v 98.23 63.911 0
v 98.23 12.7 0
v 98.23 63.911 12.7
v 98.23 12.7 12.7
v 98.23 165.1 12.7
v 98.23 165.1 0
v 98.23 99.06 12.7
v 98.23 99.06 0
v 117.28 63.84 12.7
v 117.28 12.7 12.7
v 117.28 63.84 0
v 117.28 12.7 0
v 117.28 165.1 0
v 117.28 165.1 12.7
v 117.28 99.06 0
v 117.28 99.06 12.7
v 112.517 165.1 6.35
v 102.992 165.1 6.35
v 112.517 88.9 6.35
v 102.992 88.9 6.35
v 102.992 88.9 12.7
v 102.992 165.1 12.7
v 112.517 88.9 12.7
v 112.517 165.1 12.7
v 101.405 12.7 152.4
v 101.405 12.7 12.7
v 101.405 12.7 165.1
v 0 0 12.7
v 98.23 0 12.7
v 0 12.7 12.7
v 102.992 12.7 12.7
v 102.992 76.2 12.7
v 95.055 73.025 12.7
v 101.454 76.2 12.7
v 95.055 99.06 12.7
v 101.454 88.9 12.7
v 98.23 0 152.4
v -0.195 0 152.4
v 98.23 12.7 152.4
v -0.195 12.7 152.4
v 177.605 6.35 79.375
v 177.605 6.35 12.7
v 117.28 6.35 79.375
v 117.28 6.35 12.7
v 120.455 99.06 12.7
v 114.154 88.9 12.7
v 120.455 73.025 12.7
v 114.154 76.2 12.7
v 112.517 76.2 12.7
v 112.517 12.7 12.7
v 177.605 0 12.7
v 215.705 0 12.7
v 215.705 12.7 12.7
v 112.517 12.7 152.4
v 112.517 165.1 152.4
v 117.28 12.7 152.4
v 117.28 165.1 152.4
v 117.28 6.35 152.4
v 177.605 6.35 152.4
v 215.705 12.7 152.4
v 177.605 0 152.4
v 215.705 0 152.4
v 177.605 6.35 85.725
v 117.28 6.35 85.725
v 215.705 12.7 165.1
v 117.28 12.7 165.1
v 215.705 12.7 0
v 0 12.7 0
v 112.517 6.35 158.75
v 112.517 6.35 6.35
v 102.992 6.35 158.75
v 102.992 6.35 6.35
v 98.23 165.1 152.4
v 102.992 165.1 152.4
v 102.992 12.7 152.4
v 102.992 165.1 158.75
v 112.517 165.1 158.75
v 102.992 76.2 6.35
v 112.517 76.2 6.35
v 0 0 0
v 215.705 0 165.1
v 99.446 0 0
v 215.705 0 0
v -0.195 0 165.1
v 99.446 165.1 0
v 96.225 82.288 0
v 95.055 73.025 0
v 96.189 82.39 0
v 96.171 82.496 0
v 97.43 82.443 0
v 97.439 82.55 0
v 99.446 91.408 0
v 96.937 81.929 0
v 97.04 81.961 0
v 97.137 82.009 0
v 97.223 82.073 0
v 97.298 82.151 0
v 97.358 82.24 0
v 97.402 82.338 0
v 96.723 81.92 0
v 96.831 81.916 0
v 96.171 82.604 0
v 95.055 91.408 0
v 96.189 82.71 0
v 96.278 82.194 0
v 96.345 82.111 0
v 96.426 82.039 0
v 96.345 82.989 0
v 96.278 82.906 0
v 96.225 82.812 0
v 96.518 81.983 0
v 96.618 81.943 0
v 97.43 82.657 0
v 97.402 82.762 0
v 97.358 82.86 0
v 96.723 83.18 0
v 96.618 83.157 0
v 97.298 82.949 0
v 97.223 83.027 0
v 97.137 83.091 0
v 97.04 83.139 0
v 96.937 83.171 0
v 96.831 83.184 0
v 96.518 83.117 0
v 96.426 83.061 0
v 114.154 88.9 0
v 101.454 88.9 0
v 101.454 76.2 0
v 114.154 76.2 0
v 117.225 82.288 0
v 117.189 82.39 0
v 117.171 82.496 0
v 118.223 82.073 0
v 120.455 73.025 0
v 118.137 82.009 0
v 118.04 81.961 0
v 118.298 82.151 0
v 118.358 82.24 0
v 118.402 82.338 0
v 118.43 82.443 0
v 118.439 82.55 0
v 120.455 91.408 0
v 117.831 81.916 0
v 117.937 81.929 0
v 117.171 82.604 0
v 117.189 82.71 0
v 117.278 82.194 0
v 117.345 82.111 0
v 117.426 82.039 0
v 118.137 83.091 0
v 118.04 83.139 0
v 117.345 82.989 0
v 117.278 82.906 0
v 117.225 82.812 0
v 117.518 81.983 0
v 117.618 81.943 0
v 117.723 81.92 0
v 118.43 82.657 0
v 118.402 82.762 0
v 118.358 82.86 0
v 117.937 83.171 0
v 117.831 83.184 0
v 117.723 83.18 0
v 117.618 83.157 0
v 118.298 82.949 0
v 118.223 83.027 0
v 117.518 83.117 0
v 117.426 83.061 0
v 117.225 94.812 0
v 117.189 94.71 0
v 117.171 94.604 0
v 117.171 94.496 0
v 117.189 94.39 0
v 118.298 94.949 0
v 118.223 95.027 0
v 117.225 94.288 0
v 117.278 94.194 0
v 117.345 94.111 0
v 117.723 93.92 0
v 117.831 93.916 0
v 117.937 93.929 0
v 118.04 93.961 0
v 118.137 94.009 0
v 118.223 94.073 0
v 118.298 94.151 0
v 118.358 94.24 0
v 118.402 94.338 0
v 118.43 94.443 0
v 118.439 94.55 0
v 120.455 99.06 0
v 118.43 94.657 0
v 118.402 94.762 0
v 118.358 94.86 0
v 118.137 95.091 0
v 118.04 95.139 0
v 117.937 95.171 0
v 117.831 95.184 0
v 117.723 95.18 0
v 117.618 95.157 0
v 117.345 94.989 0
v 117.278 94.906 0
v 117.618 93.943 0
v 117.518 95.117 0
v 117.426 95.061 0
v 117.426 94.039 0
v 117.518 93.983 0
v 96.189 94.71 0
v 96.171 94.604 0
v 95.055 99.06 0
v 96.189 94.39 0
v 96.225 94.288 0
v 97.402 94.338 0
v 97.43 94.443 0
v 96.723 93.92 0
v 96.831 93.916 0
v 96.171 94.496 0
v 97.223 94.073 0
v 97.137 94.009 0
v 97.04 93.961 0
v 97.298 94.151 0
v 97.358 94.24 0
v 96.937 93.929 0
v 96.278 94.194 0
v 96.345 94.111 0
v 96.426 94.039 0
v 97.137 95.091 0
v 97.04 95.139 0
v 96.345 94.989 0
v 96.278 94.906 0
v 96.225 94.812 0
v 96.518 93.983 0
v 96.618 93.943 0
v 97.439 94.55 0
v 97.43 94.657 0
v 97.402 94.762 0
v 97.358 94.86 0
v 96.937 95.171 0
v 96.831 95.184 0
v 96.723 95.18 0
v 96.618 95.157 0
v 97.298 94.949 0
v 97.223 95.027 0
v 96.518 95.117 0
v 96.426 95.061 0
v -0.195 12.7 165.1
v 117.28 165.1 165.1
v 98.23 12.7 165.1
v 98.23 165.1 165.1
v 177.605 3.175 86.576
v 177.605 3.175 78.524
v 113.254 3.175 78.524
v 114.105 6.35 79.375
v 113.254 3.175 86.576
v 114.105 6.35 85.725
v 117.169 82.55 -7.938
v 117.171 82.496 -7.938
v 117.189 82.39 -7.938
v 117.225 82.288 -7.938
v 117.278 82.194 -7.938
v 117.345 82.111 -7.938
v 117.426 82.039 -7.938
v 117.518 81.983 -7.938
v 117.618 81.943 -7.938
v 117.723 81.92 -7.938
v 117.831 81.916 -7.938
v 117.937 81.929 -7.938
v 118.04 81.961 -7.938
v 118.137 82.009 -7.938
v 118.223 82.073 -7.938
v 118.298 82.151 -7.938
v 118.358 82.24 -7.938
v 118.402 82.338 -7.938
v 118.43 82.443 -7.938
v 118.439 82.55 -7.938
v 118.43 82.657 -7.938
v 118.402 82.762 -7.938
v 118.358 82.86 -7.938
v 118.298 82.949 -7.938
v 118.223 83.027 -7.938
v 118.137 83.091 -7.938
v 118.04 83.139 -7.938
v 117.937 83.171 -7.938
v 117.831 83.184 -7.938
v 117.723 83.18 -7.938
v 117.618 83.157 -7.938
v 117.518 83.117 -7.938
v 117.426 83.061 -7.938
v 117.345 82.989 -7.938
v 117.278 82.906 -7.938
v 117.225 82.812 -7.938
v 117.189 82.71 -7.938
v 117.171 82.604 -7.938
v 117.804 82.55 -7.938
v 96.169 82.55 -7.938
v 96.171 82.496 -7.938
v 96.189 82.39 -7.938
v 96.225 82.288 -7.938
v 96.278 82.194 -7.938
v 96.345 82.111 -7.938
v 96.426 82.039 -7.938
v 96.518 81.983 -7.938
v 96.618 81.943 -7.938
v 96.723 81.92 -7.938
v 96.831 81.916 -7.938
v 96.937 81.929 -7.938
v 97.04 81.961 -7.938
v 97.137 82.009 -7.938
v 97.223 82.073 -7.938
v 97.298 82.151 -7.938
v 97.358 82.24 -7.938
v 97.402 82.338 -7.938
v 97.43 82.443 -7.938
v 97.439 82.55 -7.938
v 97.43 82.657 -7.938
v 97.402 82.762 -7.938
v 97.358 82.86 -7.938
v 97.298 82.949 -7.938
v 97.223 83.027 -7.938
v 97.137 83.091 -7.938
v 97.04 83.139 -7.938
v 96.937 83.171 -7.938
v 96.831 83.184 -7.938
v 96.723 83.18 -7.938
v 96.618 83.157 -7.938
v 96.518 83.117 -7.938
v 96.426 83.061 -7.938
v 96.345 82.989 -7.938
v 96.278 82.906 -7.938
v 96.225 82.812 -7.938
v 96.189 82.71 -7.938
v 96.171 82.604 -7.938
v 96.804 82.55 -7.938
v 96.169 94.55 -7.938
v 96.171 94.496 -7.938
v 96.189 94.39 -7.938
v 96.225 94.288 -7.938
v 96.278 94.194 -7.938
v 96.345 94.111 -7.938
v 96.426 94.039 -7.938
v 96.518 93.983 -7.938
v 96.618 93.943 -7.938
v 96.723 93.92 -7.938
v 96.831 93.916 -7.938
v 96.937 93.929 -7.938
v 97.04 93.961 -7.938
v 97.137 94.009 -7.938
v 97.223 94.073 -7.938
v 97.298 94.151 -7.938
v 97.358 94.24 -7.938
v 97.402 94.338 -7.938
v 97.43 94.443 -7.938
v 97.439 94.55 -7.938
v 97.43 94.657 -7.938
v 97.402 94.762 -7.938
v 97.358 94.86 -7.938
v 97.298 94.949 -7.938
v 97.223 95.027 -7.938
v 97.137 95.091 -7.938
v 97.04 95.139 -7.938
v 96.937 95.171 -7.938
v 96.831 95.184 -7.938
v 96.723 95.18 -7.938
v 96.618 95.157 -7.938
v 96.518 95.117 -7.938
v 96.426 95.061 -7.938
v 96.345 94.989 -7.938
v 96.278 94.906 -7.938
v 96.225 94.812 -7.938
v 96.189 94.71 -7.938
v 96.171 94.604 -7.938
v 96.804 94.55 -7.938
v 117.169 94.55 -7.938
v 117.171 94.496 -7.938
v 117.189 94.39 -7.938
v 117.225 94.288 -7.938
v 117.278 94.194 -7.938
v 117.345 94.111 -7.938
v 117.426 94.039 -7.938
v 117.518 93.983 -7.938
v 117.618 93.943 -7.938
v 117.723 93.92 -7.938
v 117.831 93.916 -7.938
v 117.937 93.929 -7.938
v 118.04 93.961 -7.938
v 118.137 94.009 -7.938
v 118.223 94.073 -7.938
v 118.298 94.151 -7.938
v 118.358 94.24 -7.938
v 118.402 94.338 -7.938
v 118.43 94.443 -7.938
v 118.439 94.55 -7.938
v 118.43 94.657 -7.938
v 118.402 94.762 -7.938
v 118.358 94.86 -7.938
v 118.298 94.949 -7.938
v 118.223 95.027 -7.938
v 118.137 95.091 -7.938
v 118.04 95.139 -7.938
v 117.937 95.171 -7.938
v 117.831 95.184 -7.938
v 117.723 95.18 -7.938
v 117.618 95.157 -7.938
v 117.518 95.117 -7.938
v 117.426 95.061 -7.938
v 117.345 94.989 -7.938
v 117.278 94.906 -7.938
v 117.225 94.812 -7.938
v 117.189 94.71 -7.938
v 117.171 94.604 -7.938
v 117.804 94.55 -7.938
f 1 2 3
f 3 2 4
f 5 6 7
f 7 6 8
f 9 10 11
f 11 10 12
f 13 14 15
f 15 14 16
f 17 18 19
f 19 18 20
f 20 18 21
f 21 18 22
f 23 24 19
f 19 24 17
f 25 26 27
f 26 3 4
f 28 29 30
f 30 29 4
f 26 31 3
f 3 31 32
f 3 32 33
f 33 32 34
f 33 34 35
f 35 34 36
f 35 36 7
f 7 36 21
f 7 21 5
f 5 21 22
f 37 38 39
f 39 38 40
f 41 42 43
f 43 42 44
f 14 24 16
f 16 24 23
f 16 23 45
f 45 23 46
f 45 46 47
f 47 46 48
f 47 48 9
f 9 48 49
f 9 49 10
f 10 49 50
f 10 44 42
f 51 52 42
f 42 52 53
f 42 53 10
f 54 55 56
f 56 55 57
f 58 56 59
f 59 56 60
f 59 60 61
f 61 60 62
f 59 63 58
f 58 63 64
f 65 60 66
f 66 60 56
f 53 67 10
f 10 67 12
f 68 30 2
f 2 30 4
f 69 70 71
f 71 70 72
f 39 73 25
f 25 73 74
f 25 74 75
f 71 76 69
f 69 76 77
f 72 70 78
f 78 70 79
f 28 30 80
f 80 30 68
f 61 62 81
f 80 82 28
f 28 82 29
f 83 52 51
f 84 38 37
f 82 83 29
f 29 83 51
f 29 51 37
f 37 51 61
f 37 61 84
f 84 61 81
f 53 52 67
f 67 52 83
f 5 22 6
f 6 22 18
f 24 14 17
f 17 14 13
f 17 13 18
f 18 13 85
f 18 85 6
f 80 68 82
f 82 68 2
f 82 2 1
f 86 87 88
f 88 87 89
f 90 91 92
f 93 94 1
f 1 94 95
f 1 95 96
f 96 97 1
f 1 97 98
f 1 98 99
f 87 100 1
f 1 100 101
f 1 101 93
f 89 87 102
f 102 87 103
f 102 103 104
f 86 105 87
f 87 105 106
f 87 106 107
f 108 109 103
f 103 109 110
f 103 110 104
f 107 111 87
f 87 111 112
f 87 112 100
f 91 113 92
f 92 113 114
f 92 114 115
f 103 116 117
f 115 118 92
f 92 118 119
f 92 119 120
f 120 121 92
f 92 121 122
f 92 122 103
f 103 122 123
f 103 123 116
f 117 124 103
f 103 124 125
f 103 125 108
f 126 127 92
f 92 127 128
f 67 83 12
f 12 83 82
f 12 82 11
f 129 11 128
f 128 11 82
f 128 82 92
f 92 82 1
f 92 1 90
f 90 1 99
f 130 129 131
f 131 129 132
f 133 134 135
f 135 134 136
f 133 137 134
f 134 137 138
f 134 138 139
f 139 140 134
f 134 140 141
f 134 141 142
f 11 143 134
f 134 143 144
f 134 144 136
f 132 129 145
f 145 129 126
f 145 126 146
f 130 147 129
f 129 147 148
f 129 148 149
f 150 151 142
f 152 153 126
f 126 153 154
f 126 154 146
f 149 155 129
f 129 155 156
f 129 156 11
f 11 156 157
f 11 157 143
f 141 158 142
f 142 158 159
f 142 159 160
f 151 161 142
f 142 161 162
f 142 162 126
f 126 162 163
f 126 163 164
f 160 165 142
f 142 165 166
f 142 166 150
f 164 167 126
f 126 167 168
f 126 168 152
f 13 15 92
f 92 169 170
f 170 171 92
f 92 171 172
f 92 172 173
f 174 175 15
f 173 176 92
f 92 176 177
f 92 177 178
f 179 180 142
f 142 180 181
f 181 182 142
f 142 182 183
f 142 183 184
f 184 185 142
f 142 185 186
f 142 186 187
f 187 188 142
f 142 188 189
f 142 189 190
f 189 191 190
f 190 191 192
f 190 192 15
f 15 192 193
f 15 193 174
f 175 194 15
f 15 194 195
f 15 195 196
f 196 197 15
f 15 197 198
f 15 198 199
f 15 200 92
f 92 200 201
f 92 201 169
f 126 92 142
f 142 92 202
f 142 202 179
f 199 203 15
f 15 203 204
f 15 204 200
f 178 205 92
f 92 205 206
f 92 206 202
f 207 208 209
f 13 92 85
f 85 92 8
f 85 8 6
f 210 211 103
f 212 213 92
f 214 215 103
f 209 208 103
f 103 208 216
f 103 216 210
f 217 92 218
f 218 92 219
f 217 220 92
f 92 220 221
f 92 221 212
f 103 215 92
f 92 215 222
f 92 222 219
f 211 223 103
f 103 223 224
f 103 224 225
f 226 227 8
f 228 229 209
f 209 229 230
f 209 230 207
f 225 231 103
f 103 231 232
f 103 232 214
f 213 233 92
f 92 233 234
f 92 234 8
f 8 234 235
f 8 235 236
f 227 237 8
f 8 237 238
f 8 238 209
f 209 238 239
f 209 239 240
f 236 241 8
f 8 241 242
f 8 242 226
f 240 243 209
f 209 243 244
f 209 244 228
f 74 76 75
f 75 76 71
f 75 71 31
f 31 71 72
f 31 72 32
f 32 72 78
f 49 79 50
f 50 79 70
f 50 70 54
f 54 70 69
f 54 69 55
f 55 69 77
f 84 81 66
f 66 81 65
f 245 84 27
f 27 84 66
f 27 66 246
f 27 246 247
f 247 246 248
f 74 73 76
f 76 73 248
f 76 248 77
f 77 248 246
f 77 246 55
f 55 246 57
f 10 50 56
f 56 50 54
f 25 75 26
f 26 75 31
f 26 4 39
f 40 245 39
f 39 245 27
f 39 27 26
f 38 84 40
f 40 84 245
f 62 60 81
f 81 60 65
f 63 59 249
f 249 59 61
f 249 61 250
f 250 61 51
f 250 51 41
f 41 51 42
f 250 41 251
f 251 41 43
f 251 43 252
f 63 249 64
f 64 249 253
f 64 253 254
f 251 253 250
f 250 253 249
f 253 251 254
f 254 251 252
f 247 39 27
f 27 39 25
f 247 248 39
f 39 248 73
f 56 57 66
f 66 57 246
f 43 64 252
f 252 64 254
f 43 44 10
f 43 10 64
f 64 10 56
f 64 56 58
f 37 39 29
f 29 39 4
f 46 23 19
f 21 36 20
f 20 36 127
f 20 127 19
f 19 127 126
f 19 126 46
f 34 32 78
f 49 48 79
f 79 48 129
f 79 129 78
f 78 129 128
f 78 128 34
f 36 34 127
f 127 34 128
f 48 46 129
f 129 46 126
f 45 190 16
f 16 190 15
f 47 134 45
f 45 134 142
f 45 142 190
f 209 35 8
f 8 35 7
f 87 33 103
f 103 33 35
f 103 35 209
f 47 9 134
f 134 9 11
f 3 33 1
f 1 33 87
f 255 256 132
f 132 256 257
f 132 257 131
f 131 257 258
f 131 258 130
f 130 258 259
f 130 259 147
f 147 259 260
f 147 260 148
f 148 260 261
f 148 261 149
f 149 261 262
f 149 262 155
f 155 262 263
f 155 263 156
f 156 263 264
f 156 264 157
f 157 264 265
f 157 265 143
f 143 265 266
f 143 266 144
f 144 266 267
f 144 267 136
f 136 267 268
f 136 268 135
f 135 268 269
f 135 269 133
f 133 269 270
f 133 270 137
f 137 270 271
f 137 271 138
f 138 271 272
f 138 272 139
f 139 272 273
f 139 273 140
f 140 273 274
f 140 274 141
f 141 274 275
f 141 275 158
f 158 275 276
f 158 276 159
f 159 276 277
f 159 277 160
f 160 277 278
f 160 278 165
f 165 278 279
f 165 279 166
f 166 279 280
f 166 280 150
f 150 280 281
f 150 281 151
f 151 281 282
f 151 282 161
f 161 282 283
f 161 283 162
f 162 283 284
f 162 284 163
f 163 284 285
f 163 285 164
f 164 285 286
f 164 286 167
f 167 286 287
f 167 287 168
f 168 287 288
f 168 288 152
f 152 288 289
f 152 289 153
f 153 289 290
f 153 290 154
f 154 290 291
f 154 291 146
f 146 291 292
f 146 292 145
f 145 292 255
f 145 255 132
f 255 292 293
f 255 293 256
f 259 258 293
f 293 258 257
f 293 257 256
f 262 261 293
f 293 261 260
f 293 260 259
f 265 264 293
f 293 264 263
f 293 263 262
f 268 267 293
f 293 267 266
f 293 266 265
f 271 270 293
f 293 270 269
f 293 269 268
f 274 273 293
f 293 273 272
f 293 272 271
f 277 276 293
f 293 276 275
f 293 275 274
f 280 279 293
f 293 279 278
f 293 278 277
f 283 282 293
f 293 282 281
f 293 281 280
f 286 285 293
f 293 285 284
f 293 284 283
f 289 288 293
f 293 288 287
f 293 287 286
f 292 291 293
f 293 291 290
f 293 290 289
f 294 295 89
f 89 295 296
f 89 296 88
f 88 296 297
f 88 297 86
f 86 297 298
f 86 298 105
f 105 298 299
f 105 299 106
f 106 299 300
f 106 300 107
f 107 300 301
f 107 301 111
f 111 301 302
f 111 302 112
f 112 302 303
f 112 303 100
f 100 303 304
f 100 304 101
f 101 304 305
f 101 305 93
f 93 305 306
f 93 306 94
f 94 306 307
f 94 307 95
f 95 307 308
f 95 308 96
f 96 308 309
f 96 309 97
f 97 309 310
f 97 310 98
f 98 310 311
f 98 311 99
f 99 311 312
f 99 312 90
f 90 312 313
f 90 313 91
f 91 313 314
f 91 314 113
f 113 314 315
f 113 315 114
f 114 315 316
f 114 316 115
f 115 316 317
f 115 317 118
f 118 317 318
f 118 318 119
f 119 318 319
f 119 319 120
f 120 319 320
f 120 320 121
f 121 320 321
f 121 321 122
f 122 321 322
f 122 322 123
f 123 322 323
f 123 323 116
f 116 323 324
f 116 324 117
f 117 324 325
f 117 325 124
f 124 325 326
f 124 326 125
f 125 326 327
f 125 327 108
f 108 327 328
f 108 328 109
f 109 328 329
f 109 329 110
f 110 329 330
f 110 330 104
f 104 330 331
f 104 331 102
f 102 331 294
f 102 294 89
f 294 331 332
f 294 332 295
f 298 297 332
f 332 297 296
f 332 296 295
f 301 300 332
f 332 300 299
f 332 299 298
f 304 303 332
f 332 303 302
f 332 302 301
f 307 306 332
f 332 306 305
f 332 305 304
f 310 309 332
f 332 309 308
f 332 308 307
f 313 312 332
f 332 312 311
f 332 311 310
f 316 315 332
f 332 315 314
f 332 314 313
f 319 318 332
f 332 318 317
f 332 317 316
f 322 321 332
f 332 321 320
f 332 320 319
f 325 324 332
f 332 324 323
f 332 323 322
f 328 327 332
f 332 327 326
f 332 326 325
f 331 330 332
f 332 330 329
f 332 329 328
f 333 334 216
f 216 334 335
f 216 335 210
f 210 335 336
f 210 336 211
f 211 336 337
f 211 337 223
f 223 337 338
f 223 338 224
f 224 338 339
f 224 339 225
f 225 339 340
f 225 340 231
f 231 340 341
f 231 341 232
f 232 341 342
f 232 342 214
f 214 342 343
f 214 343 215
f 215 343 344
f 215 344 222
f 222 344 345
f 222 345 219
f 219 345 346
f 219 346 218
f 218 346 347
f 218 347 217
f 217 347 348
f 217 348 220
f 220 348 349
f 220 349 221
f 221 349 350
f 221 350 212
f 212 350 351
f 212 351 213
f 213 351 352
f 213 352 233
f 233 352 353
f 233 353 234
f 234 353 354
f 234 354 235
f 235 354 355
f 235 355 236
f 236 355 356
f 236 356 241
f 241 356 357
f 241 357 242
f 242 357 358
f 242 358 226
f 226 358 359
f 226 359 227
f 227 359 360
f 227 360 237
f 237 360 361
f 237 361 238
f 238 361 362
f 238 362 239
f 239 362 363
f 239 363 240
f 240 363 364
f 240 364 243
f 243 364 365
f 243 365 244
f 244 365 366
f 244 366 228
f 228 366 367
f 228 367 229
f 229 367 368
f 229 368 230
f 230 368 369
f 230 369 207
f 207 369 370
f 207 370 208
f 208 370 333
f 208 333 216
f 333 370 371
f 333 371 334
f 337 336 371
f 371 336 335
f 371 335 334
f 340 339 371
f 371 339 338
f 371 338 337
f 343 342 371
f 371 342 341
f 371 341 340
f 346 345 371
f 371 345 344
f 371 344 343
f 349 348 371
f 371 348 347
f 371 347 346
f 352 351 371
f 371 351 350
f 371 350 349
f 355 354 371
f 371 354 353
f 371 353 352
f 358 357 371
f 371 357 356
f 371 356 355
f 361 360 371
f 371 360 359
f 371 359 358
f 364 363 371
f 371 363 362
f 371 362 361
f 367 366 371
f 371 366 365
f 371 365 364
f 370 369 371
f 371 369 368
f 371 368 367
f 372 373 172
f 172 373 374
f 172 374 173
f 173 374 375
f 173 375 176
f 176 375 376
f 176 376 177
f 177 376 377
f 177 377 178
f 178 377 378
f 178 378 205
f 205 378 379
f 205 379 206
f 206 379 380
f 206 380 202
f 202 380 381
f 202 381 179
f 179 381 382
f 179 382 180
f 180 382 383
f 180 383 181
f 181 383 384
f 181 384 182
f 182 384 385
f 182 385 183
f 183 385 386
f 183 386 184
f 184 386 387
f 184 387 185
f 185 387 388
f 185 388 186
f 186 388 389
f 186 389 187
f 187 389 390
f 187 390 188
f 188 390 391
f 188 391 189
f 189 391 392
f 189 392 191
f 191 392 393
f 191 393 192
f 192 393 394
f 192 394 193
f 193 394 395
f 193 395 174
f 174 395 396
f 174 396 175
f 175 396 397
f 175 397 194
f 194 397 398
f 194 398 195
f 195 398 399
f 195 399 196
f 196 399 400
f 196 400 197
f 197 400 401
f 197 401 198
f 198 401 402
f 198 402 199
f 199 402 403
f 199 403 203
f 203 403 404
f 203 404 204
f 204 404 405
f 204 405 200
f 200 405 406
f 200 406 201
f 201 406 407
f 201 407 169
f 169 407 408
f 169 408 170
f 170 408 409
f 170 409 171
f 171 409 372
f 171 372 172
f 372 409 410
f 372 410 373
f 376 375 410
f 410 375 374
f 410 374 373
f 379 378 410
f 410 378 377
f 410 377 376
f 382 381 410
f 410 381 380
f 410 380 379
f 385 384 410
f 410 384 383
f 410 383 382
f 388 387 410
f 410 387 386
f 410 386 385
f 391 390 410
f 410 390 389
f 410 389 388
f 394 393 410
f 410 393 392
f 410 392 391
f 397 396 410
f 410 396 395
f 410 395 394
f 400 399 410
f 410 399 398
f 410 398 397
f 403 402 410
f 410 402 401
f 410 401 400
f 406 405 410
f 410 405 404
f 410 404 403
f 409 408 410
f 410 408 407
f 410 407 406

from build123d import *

# Parameters (mm, degrees)
BOSS_EXTRUDE2_DEPTH  = 6.35
BOSS_EXTRUDE3_DEPTH  = 6.35
SKETCH3_W            = 1.5875
SKETCH3_H            = 158.75
BOSS_EXTRUDE4_DEPTH  = 6.35
SKETCH4_W            = 12.7
SKETCH4_H            = 6.35
BOSS_EXTRUDE5_DEPTH  = 158.75
SKETCH5_W            = 12.7
SKETCH5_H            = 6.35
BOSS_EXTRUDE6_DEPTH  = 158.75
SKETCH6_W            = 1.5875
SKETCH6_H            = 158.75
BOSS_EXTRUDE7_DEPTH  = 6.35
SKETCH7_W            = 1.5875
SKETCH7_H            = 158.75
BOSS_EXTRUDE8_DEPTH  = 6.35
SKETCH8_W            = 1.5875
SKETCH8_H            = 6.35
BOSS_EXTRUDE9_DEPTH  = 139.7
SKETCH10_W           = 1.5875
SKETCH10_H           = 6.35
BOSS_EXTRUDE10_DEPTH = 139.7
SKETCH11_W           = 12.7
SKETCH11_H           = 12.699759929
BOSS_EXTRUDE11_DEPTH = 101.6
SKETCH12_W           = 101.404934815
SKETCH12_H           = 12.7
BOSS_EXTRUDE12_DEPTH = 6.35
SKETCH13_W           = 101.6
SKETCH13_H           = 12.7
BOSS_EXTRUDE13_DEPTH = 6.35
SKETCH14_W           = 12.7
SKETCH14_H           = 12.7
BOSS_EXTRUDE14_DEPTH = 101.6
SKETCH15_W           = 139.7
SKETCH15_H           = 6.35
BOSS_EXTRUDE15_DEPTH = 63.5
CUT_EXTRUDE1_DEPTH   = 3.175
CUT_EXTRUDE1_DRAFT   = 15
CUT_EXTRUDE3_DEPTH   = 6.35
SKETCH18_W           = 12.7
SKETCH18_H           = 152.4
BOSS_EXTRUDE17_DEPTH = 3.175
SKETCH19_W           = 12.7
SKETCH19_H           = 152.4
BOSS_EXTRUDE18_DEPTH = 3.175
SKETCH20_W           = 12.7
SKETCH20_H           = 152.4
BOSS_EXTRUDE19_DEPTH = 3.175
SKETCH21_W           = 12.7
SKETCH21_H           = 152.4
BOSS_EXTRUDE20_DEPTH = 3.175
SKETCH22_W           = 139.7
SKETCH22_H           = 6.35
BOSS_EXTRUDE21_DEPTH = 3.175
SKETCH23_W           = 139.7
SKETCH23_H           = 12.699759929
BOSS_EXTRUDE22_DEPTH = 3.175
CUT_EXTRUDE4_DEPTH   = 12.7
SKETCH30_W           = 12.7
SKETCH30_H           = 26.035
BOSS_EXTRUDE25_DEPTH = 3.175
SKETCH31_W           = 12.7
SKETCH31_H           = 26.035
BOSS_EXTRUDE26_DEPTH = 3.175
BOSS_EXTRUDE27_DEPTH = 12.7
BOSS_EXTRUDE28_DEPTH = 12.7
SKETCH37_R           = 0.635
BOSS_EXTRUDE29_DEPTH = 7.9375


with BuildPart() as part:
    # Sketch1 → Boss-Extrude2 (new body)
    with BuildSketch(Plane.XY):
        Polygon((0, 0), (215.704934815, 0), (215.704934815, 12.7), (114.104934815, 12.7), (114.104934815, 165.1), (101.404934815, 165.1), (101.404934815, 12.7), (0, 12.7), align=None)
    extrude(amount=BOSS_EXTRUDE2_DEPTH)

    # Sketch2 → Boss-Extrude3 (add)
    with BuildSketch(Plane.XY.offset(6.35)):
        Polygon((101.404934815, 12.7), (101.404934815, 6.35), (102.992434815, 6.35), (102.992434815, 165.1), (101.404934815, 165.1), align=None)
    extrude(amount=BOSS_EXTRUDE3_DEPTH)

    # Sketch3 → Boss-Extrude4 (add)
    with BuildSketch(Plane.XY.offset(6.35)):
        with Locations((113.311184815, 85.725)):
            Rectangle(SKETCH3_W, SKETCH3_H)
    extrude(amount=BOSS_EXTRUDE4_DEPTH)

    # Sketch4 → Boss-Extrude5 (add)
    with BuildSketch(Plane.XY.offset(6.35)):
        with Locations((107.754934815, 3.175)):
            Rectangle(SKETCH4_W, SKETCH4_H)
    extrude(amount=BOSS_EXTRUDE5_DEPTH)

    # Sketch5 → Boss-Extrude6 (add)
    with BuildSketch(Plane(origin=(0, 6.35, 0), x_dir=(1, 0, 0), z_dir=(0, 1, 0))):
        with Locations((107.754934815, -161.925)):
            Rectangle(SKETCH5_W, SKETCH5_H)
    extrude(amount=BOSS_EXTRUDE6_DEPTH)

    # Sketch6 → Boss-Extrude7 (add)
    with BuildSketch(Plane(origin=(0, 0, 158.75), x_dir=(-1, 0, 0), z_dir=(0, 0, -1))):
        with Locations((-102.198684815, 85.725)):
            Rectangle(SKETCH6_W, SKETCH6_H)
    extrude(amount=BOSS_EXTRUDE7_DEPTH)

    # Sketch7 → Boss-Extrude8 (add)
    with BuildSketch(Plane(origin=(0, 0, 158.75), x_dir=(-1, 0, 0), z_dir=(0, 0, -1))):
        with Locations((-113.311184815, 85.725)):
            Rectangle(SKETCH7_W, SKETCH7_H)
    extrude(amount=BOSS_EXTRUDE8_DEPTH)

    # Sketch8 → Boss-Extrude9 (add)
    with BuildSketch(Plane(origin=(0, 0, 152.4), x_dir=(-1, 0, 0), z_dir=(0, 0, -1))):
        with Locations((-113.311184815, 9.525)):
            Rectangle(SKETCH8_W, SKETCH8_H)
    extrude(amount=BOSS_EXTRUDE9_DEPTH)

    # Sketch10 → Boss-Extrude10 (add)
    with BuildSketch(Plane.XY.offset(12.7)):
        with Locations((102.198684815, 9.525)):
            Rectangle(SKETCH10_W, SKETCH10_H)
    extrude(amount=BOSS_EXTRUDE10_DEPTH)

    # Sketch11 → Boss-Extrude11 (add)
    with BuildSketch(Plane.ZY.offset(-101.404934815)):
        with Locations((158.75, 6.349879965)):
            Rectangle(SKETCH11_W, SKETCH11_H)
    extrude(amount=BOSS_EXTRUDE11_DEPTH)

    # Sketch12 → Boss-Extrude12 (add)
    with BuildSketch(Plane.XY.offset(6.35)):
        with Locations((50.702467408, 6.35)):
            Rectangle(SKETCH12_W, SKETCH12_H)
    extrude(amount=BOSS_EXTRUDE12_DEPTH)

    # Sketch13 → Boss-Extrude13 (add)
    with BuildSketch(Plane.XY.offset(6.35)):
        with Locations((164.904934815, 6.35)):
            Rectangle(SKETCH13_W, SKETCH13_H)
    extrude(amount=BOSS_EXTRUDE13_DEPTH)

    # Sketch14 → Boss-Extrude14 (add)
    with BuildSketch(Plane(origin=(114.104934815, 0, 0), x_dir=(0, 0, -1), z_dir=(1, 0, 0))):
        with Locations((-158.75, 6.35)):
            Rectangle(SKETCH14_W, SKETCH14_H)
    extrude(amount=BOSS_EXTRUDE14_DEPTH)

    # Sketch15 → Boss-Extrude15 (add)
    with BuildSketch(Plane(origin=(114.104934815, 0, 0), x_dir=(0, 0, -1), z_dir=(1, 0, 0))):
        with Locations((-82.55, 3.175)):
            Rectangle(SKETCH15_W, SKETCH15_H)
    extrude(amount=BOSS_EXTRUDE15_DEPTH)


with BuildPart() as cut_extrude1_tool:
    # Sketch16 → Cut-Extrude1 (with draft: the straight prism first)
    with BuildSketch(Plane(origin=(0, 6.35, 0), x_dir=(1, 0, 0), z_dir=(0, 1, 0))):
        Polygon((177.604934815, -82.55), (177.604934815, -79.375), (114.104934815, -79.375), (114.104934815, -82.55), (114.104934815, -85.725), (177.604934815, -85.725), align=None)
    extrude(amount=-CUT_EXTRUDE1_DEPTH)
    # Cut-Extrude1: the draft: its side faces are tilted about the plane it starts from
    cut_extrude1_sides = [cut_extrude1_tool.faces().sort_by_distance(p)[0] for p in [
        (177.604934815, 4.7625, 82.55),
        (114.104934815, 4.7625, 82.55),
        (145.854934815, 4.7625, 85.725),
        (145.854934815, 4.7625, 79.375),
    ]]
    draft(cut_extrude1_sides, Plane(origin=(0, 6.35, 0), x_dir=(1, 0, 0), z_dir=(0, 1, 0)), CUT_EXTRUDE1_DRAFT)


with BuildPart() as part_1:
    add(part.part)

    # Cut-Extrude1: cut by cut_extrude1_tool
    add(cut_extrude1_tool.part, mode=Mode.SUBTRACT)

    # Sketch17 → Cut-Extrude3 (cut)
    with BuildSketch(Plane(origin=(0, 0, 0), x_dir=(-1, 0, 0), z_dir=(0, 0, -1))):
        Polygon((-107.803701111, 87.3125), (-112.566201111, 87.3125), (-112.566201111, 82.55), (-112.566201111, 77.784684897), (-107.806516214, 77.784684897), (-103.041201111, 77.784684897), (-103.041201111, 82.55), (-103.041201111, 87.3125), align=None)
    extrude(amount=-CUT_EXTRUDE3_DEPTH, mode=Mode.SUBTRACT)

    # Sketch18 → Boss-Extrude17 (add)
    with BuildSketch(Plane.ZY.offset(-101.404934815)):
        with Locations((6.35, 88.9)):
            Rectangle(SKETCH18_W, SKETCH18_H)
    extrude(amount=BOSS_EXTRUDE17_DEPTH)

    # Sketch19 → Boss-Extrude18 (add)
    with BuildSketch(Plane(origin=(114.104934815, 0, 0), x_dir=(0, 0, -1), z_dir=(1, 0, 0))):
        with Locations((-6.35, 88.9)):
            Rectangle(SKETCH19_W, SKETCH19_H)
    extrude(amount=BOSS_EXTRUDE18_DEPTH)

    # Sketch20 → Boss-Extrude19 (add)
    with BuildSketch(Plane.ZY.offset(-101.404934815)):
        with Locations((158.75, 88.9)):
            Rectangle(SKETCH20_W, SKETCH20_H)
    extrude(amount=BOSS_EXTRUDE19_DEPTH)

    # Sketch21 → Boss-Extrude20 (add)
    with BuildSketch(Plane(origin=(114.104934815, 0, 0), x_dir=(0, 0, -1), z_dir=(1, 0, 0))):
        with Locations((-158.75, 88.9)):
            Rectangle(SKETCH21_W, SKETCH21_H)
    extrude(amount=BOSS_EXTRUDE20_DEPTH)

    # Sketch22 → Boss-Extrude21 (add)
    with BuildSketch(Plane(origin=(114.104934815, 0, 0), x_dir=(0, 0, -1), z_dir=(1, 0, 0))):
        with Locations((-82.55, 9.525)):
            Rectangle(SKETCH22_W, SKETCH22_H)
    extrude(amount=BOSS_EXTRUDE21_DEPTH)

    # Sketch23 → Boss-Extrude22 (add)
    with BuildSketch(Plane.ZY.offset(-101.404934815)):
        with Locations((82.55, 6.349879965)):
            Rectangle(SKETCH23_W, SKETCH23_H)
    extrude(amount=BOSS_EXTRUDE22_DEPTH)

    # Sketch25 → Cut-Extrude4 (cut)
    with BuildSketch(Plane(origin=(0, 0, 0), x_dir=(-1, 0, 0), z_dir=(0, 0, -1))):
        Polygon((-112.566201111, 88.9), (-101.453701111, 88.9), (-101.453701111, 76.2), (-114.153701111, 76.2), (-114.153701111, 88.9), align=None)
    extrude(amount=-CUT_EXTRUDE4_DEPTH, mode=Mode.SUBTRACT)

    # Sketch30 → Boss-Extrude25 (add)
    with BuildSketch(Plane(origin=(117.279934815, 0, 0), x_dir=(0, 0, -1), z_dir=(1, 0, 0))):
        with Locations((-6.35, 86.0425)):
            Rectangle(SKETCH30_W, SKETCH30_H)
    extrude(amount=BOSS_EXTRUDE25_DEPTH)

    # Sketch31 → Boss-Extrude26 (add)
    with BuildSketch(Plane.ZY.offset(-98.229934815)):
        with Locations((6.35, 86.0425)):
            Rectangle(SKETCH31_W, SKETCH31_H)
    extrude(amount=BOSS_EXTRUDE26_DEPTH)

    # Sketch32 → Boss-Extrude27 (add)
    with BuildSketch(Plane(origin=(0, 0, 0), x_dir=(-1, 0, 0), z_dir=(0, 0, -1))):
        Polygon((-120.454934815, 73.025), (-117.279934815, 63.840058945), (-117.279934815, 73.025), align=None)
    extrude(amount=-BOSS_EXTRUDE27_DEPTH)

    # Sketch36 → Boss-Extrude28 (add)
    with BuildSketch(Plane(origin=(0, 0, 0), x_dir=(-1, 0, 0), z_dir=(0, 0, -1))):
        Polygon((-95.054934815, 73.025), (-98.229934815, 63.911198594), (-98.229934815, 73.025), align=None)
    extrude(amount=-BOSS_EXTRUDE28_DEPTH)

    # Sketch37 → Boss-Extrude29 (add)
    with BuildSketch(Plane(origin=(0, 0, 0), x_dir=(-1, 0, 0), z_dir=(0, 0, -1))):
        with Locations((-117.803681111, 82.55)):
            Circle(SKETCH37_R)
        with Locations((-96.803672311, 82.55)):
            Circle(SKETCH37_R)
        with Locations((-96.803672311, 94.5500014)):
            Circle(SKETCH37_R)
        with Locations((-117.803681111, 94.5500014)):
            Circle(SKETCH37_R)
    extrude(amount=BOSS_EXTRUDE29_DEPTH)


solid = part_1.part
